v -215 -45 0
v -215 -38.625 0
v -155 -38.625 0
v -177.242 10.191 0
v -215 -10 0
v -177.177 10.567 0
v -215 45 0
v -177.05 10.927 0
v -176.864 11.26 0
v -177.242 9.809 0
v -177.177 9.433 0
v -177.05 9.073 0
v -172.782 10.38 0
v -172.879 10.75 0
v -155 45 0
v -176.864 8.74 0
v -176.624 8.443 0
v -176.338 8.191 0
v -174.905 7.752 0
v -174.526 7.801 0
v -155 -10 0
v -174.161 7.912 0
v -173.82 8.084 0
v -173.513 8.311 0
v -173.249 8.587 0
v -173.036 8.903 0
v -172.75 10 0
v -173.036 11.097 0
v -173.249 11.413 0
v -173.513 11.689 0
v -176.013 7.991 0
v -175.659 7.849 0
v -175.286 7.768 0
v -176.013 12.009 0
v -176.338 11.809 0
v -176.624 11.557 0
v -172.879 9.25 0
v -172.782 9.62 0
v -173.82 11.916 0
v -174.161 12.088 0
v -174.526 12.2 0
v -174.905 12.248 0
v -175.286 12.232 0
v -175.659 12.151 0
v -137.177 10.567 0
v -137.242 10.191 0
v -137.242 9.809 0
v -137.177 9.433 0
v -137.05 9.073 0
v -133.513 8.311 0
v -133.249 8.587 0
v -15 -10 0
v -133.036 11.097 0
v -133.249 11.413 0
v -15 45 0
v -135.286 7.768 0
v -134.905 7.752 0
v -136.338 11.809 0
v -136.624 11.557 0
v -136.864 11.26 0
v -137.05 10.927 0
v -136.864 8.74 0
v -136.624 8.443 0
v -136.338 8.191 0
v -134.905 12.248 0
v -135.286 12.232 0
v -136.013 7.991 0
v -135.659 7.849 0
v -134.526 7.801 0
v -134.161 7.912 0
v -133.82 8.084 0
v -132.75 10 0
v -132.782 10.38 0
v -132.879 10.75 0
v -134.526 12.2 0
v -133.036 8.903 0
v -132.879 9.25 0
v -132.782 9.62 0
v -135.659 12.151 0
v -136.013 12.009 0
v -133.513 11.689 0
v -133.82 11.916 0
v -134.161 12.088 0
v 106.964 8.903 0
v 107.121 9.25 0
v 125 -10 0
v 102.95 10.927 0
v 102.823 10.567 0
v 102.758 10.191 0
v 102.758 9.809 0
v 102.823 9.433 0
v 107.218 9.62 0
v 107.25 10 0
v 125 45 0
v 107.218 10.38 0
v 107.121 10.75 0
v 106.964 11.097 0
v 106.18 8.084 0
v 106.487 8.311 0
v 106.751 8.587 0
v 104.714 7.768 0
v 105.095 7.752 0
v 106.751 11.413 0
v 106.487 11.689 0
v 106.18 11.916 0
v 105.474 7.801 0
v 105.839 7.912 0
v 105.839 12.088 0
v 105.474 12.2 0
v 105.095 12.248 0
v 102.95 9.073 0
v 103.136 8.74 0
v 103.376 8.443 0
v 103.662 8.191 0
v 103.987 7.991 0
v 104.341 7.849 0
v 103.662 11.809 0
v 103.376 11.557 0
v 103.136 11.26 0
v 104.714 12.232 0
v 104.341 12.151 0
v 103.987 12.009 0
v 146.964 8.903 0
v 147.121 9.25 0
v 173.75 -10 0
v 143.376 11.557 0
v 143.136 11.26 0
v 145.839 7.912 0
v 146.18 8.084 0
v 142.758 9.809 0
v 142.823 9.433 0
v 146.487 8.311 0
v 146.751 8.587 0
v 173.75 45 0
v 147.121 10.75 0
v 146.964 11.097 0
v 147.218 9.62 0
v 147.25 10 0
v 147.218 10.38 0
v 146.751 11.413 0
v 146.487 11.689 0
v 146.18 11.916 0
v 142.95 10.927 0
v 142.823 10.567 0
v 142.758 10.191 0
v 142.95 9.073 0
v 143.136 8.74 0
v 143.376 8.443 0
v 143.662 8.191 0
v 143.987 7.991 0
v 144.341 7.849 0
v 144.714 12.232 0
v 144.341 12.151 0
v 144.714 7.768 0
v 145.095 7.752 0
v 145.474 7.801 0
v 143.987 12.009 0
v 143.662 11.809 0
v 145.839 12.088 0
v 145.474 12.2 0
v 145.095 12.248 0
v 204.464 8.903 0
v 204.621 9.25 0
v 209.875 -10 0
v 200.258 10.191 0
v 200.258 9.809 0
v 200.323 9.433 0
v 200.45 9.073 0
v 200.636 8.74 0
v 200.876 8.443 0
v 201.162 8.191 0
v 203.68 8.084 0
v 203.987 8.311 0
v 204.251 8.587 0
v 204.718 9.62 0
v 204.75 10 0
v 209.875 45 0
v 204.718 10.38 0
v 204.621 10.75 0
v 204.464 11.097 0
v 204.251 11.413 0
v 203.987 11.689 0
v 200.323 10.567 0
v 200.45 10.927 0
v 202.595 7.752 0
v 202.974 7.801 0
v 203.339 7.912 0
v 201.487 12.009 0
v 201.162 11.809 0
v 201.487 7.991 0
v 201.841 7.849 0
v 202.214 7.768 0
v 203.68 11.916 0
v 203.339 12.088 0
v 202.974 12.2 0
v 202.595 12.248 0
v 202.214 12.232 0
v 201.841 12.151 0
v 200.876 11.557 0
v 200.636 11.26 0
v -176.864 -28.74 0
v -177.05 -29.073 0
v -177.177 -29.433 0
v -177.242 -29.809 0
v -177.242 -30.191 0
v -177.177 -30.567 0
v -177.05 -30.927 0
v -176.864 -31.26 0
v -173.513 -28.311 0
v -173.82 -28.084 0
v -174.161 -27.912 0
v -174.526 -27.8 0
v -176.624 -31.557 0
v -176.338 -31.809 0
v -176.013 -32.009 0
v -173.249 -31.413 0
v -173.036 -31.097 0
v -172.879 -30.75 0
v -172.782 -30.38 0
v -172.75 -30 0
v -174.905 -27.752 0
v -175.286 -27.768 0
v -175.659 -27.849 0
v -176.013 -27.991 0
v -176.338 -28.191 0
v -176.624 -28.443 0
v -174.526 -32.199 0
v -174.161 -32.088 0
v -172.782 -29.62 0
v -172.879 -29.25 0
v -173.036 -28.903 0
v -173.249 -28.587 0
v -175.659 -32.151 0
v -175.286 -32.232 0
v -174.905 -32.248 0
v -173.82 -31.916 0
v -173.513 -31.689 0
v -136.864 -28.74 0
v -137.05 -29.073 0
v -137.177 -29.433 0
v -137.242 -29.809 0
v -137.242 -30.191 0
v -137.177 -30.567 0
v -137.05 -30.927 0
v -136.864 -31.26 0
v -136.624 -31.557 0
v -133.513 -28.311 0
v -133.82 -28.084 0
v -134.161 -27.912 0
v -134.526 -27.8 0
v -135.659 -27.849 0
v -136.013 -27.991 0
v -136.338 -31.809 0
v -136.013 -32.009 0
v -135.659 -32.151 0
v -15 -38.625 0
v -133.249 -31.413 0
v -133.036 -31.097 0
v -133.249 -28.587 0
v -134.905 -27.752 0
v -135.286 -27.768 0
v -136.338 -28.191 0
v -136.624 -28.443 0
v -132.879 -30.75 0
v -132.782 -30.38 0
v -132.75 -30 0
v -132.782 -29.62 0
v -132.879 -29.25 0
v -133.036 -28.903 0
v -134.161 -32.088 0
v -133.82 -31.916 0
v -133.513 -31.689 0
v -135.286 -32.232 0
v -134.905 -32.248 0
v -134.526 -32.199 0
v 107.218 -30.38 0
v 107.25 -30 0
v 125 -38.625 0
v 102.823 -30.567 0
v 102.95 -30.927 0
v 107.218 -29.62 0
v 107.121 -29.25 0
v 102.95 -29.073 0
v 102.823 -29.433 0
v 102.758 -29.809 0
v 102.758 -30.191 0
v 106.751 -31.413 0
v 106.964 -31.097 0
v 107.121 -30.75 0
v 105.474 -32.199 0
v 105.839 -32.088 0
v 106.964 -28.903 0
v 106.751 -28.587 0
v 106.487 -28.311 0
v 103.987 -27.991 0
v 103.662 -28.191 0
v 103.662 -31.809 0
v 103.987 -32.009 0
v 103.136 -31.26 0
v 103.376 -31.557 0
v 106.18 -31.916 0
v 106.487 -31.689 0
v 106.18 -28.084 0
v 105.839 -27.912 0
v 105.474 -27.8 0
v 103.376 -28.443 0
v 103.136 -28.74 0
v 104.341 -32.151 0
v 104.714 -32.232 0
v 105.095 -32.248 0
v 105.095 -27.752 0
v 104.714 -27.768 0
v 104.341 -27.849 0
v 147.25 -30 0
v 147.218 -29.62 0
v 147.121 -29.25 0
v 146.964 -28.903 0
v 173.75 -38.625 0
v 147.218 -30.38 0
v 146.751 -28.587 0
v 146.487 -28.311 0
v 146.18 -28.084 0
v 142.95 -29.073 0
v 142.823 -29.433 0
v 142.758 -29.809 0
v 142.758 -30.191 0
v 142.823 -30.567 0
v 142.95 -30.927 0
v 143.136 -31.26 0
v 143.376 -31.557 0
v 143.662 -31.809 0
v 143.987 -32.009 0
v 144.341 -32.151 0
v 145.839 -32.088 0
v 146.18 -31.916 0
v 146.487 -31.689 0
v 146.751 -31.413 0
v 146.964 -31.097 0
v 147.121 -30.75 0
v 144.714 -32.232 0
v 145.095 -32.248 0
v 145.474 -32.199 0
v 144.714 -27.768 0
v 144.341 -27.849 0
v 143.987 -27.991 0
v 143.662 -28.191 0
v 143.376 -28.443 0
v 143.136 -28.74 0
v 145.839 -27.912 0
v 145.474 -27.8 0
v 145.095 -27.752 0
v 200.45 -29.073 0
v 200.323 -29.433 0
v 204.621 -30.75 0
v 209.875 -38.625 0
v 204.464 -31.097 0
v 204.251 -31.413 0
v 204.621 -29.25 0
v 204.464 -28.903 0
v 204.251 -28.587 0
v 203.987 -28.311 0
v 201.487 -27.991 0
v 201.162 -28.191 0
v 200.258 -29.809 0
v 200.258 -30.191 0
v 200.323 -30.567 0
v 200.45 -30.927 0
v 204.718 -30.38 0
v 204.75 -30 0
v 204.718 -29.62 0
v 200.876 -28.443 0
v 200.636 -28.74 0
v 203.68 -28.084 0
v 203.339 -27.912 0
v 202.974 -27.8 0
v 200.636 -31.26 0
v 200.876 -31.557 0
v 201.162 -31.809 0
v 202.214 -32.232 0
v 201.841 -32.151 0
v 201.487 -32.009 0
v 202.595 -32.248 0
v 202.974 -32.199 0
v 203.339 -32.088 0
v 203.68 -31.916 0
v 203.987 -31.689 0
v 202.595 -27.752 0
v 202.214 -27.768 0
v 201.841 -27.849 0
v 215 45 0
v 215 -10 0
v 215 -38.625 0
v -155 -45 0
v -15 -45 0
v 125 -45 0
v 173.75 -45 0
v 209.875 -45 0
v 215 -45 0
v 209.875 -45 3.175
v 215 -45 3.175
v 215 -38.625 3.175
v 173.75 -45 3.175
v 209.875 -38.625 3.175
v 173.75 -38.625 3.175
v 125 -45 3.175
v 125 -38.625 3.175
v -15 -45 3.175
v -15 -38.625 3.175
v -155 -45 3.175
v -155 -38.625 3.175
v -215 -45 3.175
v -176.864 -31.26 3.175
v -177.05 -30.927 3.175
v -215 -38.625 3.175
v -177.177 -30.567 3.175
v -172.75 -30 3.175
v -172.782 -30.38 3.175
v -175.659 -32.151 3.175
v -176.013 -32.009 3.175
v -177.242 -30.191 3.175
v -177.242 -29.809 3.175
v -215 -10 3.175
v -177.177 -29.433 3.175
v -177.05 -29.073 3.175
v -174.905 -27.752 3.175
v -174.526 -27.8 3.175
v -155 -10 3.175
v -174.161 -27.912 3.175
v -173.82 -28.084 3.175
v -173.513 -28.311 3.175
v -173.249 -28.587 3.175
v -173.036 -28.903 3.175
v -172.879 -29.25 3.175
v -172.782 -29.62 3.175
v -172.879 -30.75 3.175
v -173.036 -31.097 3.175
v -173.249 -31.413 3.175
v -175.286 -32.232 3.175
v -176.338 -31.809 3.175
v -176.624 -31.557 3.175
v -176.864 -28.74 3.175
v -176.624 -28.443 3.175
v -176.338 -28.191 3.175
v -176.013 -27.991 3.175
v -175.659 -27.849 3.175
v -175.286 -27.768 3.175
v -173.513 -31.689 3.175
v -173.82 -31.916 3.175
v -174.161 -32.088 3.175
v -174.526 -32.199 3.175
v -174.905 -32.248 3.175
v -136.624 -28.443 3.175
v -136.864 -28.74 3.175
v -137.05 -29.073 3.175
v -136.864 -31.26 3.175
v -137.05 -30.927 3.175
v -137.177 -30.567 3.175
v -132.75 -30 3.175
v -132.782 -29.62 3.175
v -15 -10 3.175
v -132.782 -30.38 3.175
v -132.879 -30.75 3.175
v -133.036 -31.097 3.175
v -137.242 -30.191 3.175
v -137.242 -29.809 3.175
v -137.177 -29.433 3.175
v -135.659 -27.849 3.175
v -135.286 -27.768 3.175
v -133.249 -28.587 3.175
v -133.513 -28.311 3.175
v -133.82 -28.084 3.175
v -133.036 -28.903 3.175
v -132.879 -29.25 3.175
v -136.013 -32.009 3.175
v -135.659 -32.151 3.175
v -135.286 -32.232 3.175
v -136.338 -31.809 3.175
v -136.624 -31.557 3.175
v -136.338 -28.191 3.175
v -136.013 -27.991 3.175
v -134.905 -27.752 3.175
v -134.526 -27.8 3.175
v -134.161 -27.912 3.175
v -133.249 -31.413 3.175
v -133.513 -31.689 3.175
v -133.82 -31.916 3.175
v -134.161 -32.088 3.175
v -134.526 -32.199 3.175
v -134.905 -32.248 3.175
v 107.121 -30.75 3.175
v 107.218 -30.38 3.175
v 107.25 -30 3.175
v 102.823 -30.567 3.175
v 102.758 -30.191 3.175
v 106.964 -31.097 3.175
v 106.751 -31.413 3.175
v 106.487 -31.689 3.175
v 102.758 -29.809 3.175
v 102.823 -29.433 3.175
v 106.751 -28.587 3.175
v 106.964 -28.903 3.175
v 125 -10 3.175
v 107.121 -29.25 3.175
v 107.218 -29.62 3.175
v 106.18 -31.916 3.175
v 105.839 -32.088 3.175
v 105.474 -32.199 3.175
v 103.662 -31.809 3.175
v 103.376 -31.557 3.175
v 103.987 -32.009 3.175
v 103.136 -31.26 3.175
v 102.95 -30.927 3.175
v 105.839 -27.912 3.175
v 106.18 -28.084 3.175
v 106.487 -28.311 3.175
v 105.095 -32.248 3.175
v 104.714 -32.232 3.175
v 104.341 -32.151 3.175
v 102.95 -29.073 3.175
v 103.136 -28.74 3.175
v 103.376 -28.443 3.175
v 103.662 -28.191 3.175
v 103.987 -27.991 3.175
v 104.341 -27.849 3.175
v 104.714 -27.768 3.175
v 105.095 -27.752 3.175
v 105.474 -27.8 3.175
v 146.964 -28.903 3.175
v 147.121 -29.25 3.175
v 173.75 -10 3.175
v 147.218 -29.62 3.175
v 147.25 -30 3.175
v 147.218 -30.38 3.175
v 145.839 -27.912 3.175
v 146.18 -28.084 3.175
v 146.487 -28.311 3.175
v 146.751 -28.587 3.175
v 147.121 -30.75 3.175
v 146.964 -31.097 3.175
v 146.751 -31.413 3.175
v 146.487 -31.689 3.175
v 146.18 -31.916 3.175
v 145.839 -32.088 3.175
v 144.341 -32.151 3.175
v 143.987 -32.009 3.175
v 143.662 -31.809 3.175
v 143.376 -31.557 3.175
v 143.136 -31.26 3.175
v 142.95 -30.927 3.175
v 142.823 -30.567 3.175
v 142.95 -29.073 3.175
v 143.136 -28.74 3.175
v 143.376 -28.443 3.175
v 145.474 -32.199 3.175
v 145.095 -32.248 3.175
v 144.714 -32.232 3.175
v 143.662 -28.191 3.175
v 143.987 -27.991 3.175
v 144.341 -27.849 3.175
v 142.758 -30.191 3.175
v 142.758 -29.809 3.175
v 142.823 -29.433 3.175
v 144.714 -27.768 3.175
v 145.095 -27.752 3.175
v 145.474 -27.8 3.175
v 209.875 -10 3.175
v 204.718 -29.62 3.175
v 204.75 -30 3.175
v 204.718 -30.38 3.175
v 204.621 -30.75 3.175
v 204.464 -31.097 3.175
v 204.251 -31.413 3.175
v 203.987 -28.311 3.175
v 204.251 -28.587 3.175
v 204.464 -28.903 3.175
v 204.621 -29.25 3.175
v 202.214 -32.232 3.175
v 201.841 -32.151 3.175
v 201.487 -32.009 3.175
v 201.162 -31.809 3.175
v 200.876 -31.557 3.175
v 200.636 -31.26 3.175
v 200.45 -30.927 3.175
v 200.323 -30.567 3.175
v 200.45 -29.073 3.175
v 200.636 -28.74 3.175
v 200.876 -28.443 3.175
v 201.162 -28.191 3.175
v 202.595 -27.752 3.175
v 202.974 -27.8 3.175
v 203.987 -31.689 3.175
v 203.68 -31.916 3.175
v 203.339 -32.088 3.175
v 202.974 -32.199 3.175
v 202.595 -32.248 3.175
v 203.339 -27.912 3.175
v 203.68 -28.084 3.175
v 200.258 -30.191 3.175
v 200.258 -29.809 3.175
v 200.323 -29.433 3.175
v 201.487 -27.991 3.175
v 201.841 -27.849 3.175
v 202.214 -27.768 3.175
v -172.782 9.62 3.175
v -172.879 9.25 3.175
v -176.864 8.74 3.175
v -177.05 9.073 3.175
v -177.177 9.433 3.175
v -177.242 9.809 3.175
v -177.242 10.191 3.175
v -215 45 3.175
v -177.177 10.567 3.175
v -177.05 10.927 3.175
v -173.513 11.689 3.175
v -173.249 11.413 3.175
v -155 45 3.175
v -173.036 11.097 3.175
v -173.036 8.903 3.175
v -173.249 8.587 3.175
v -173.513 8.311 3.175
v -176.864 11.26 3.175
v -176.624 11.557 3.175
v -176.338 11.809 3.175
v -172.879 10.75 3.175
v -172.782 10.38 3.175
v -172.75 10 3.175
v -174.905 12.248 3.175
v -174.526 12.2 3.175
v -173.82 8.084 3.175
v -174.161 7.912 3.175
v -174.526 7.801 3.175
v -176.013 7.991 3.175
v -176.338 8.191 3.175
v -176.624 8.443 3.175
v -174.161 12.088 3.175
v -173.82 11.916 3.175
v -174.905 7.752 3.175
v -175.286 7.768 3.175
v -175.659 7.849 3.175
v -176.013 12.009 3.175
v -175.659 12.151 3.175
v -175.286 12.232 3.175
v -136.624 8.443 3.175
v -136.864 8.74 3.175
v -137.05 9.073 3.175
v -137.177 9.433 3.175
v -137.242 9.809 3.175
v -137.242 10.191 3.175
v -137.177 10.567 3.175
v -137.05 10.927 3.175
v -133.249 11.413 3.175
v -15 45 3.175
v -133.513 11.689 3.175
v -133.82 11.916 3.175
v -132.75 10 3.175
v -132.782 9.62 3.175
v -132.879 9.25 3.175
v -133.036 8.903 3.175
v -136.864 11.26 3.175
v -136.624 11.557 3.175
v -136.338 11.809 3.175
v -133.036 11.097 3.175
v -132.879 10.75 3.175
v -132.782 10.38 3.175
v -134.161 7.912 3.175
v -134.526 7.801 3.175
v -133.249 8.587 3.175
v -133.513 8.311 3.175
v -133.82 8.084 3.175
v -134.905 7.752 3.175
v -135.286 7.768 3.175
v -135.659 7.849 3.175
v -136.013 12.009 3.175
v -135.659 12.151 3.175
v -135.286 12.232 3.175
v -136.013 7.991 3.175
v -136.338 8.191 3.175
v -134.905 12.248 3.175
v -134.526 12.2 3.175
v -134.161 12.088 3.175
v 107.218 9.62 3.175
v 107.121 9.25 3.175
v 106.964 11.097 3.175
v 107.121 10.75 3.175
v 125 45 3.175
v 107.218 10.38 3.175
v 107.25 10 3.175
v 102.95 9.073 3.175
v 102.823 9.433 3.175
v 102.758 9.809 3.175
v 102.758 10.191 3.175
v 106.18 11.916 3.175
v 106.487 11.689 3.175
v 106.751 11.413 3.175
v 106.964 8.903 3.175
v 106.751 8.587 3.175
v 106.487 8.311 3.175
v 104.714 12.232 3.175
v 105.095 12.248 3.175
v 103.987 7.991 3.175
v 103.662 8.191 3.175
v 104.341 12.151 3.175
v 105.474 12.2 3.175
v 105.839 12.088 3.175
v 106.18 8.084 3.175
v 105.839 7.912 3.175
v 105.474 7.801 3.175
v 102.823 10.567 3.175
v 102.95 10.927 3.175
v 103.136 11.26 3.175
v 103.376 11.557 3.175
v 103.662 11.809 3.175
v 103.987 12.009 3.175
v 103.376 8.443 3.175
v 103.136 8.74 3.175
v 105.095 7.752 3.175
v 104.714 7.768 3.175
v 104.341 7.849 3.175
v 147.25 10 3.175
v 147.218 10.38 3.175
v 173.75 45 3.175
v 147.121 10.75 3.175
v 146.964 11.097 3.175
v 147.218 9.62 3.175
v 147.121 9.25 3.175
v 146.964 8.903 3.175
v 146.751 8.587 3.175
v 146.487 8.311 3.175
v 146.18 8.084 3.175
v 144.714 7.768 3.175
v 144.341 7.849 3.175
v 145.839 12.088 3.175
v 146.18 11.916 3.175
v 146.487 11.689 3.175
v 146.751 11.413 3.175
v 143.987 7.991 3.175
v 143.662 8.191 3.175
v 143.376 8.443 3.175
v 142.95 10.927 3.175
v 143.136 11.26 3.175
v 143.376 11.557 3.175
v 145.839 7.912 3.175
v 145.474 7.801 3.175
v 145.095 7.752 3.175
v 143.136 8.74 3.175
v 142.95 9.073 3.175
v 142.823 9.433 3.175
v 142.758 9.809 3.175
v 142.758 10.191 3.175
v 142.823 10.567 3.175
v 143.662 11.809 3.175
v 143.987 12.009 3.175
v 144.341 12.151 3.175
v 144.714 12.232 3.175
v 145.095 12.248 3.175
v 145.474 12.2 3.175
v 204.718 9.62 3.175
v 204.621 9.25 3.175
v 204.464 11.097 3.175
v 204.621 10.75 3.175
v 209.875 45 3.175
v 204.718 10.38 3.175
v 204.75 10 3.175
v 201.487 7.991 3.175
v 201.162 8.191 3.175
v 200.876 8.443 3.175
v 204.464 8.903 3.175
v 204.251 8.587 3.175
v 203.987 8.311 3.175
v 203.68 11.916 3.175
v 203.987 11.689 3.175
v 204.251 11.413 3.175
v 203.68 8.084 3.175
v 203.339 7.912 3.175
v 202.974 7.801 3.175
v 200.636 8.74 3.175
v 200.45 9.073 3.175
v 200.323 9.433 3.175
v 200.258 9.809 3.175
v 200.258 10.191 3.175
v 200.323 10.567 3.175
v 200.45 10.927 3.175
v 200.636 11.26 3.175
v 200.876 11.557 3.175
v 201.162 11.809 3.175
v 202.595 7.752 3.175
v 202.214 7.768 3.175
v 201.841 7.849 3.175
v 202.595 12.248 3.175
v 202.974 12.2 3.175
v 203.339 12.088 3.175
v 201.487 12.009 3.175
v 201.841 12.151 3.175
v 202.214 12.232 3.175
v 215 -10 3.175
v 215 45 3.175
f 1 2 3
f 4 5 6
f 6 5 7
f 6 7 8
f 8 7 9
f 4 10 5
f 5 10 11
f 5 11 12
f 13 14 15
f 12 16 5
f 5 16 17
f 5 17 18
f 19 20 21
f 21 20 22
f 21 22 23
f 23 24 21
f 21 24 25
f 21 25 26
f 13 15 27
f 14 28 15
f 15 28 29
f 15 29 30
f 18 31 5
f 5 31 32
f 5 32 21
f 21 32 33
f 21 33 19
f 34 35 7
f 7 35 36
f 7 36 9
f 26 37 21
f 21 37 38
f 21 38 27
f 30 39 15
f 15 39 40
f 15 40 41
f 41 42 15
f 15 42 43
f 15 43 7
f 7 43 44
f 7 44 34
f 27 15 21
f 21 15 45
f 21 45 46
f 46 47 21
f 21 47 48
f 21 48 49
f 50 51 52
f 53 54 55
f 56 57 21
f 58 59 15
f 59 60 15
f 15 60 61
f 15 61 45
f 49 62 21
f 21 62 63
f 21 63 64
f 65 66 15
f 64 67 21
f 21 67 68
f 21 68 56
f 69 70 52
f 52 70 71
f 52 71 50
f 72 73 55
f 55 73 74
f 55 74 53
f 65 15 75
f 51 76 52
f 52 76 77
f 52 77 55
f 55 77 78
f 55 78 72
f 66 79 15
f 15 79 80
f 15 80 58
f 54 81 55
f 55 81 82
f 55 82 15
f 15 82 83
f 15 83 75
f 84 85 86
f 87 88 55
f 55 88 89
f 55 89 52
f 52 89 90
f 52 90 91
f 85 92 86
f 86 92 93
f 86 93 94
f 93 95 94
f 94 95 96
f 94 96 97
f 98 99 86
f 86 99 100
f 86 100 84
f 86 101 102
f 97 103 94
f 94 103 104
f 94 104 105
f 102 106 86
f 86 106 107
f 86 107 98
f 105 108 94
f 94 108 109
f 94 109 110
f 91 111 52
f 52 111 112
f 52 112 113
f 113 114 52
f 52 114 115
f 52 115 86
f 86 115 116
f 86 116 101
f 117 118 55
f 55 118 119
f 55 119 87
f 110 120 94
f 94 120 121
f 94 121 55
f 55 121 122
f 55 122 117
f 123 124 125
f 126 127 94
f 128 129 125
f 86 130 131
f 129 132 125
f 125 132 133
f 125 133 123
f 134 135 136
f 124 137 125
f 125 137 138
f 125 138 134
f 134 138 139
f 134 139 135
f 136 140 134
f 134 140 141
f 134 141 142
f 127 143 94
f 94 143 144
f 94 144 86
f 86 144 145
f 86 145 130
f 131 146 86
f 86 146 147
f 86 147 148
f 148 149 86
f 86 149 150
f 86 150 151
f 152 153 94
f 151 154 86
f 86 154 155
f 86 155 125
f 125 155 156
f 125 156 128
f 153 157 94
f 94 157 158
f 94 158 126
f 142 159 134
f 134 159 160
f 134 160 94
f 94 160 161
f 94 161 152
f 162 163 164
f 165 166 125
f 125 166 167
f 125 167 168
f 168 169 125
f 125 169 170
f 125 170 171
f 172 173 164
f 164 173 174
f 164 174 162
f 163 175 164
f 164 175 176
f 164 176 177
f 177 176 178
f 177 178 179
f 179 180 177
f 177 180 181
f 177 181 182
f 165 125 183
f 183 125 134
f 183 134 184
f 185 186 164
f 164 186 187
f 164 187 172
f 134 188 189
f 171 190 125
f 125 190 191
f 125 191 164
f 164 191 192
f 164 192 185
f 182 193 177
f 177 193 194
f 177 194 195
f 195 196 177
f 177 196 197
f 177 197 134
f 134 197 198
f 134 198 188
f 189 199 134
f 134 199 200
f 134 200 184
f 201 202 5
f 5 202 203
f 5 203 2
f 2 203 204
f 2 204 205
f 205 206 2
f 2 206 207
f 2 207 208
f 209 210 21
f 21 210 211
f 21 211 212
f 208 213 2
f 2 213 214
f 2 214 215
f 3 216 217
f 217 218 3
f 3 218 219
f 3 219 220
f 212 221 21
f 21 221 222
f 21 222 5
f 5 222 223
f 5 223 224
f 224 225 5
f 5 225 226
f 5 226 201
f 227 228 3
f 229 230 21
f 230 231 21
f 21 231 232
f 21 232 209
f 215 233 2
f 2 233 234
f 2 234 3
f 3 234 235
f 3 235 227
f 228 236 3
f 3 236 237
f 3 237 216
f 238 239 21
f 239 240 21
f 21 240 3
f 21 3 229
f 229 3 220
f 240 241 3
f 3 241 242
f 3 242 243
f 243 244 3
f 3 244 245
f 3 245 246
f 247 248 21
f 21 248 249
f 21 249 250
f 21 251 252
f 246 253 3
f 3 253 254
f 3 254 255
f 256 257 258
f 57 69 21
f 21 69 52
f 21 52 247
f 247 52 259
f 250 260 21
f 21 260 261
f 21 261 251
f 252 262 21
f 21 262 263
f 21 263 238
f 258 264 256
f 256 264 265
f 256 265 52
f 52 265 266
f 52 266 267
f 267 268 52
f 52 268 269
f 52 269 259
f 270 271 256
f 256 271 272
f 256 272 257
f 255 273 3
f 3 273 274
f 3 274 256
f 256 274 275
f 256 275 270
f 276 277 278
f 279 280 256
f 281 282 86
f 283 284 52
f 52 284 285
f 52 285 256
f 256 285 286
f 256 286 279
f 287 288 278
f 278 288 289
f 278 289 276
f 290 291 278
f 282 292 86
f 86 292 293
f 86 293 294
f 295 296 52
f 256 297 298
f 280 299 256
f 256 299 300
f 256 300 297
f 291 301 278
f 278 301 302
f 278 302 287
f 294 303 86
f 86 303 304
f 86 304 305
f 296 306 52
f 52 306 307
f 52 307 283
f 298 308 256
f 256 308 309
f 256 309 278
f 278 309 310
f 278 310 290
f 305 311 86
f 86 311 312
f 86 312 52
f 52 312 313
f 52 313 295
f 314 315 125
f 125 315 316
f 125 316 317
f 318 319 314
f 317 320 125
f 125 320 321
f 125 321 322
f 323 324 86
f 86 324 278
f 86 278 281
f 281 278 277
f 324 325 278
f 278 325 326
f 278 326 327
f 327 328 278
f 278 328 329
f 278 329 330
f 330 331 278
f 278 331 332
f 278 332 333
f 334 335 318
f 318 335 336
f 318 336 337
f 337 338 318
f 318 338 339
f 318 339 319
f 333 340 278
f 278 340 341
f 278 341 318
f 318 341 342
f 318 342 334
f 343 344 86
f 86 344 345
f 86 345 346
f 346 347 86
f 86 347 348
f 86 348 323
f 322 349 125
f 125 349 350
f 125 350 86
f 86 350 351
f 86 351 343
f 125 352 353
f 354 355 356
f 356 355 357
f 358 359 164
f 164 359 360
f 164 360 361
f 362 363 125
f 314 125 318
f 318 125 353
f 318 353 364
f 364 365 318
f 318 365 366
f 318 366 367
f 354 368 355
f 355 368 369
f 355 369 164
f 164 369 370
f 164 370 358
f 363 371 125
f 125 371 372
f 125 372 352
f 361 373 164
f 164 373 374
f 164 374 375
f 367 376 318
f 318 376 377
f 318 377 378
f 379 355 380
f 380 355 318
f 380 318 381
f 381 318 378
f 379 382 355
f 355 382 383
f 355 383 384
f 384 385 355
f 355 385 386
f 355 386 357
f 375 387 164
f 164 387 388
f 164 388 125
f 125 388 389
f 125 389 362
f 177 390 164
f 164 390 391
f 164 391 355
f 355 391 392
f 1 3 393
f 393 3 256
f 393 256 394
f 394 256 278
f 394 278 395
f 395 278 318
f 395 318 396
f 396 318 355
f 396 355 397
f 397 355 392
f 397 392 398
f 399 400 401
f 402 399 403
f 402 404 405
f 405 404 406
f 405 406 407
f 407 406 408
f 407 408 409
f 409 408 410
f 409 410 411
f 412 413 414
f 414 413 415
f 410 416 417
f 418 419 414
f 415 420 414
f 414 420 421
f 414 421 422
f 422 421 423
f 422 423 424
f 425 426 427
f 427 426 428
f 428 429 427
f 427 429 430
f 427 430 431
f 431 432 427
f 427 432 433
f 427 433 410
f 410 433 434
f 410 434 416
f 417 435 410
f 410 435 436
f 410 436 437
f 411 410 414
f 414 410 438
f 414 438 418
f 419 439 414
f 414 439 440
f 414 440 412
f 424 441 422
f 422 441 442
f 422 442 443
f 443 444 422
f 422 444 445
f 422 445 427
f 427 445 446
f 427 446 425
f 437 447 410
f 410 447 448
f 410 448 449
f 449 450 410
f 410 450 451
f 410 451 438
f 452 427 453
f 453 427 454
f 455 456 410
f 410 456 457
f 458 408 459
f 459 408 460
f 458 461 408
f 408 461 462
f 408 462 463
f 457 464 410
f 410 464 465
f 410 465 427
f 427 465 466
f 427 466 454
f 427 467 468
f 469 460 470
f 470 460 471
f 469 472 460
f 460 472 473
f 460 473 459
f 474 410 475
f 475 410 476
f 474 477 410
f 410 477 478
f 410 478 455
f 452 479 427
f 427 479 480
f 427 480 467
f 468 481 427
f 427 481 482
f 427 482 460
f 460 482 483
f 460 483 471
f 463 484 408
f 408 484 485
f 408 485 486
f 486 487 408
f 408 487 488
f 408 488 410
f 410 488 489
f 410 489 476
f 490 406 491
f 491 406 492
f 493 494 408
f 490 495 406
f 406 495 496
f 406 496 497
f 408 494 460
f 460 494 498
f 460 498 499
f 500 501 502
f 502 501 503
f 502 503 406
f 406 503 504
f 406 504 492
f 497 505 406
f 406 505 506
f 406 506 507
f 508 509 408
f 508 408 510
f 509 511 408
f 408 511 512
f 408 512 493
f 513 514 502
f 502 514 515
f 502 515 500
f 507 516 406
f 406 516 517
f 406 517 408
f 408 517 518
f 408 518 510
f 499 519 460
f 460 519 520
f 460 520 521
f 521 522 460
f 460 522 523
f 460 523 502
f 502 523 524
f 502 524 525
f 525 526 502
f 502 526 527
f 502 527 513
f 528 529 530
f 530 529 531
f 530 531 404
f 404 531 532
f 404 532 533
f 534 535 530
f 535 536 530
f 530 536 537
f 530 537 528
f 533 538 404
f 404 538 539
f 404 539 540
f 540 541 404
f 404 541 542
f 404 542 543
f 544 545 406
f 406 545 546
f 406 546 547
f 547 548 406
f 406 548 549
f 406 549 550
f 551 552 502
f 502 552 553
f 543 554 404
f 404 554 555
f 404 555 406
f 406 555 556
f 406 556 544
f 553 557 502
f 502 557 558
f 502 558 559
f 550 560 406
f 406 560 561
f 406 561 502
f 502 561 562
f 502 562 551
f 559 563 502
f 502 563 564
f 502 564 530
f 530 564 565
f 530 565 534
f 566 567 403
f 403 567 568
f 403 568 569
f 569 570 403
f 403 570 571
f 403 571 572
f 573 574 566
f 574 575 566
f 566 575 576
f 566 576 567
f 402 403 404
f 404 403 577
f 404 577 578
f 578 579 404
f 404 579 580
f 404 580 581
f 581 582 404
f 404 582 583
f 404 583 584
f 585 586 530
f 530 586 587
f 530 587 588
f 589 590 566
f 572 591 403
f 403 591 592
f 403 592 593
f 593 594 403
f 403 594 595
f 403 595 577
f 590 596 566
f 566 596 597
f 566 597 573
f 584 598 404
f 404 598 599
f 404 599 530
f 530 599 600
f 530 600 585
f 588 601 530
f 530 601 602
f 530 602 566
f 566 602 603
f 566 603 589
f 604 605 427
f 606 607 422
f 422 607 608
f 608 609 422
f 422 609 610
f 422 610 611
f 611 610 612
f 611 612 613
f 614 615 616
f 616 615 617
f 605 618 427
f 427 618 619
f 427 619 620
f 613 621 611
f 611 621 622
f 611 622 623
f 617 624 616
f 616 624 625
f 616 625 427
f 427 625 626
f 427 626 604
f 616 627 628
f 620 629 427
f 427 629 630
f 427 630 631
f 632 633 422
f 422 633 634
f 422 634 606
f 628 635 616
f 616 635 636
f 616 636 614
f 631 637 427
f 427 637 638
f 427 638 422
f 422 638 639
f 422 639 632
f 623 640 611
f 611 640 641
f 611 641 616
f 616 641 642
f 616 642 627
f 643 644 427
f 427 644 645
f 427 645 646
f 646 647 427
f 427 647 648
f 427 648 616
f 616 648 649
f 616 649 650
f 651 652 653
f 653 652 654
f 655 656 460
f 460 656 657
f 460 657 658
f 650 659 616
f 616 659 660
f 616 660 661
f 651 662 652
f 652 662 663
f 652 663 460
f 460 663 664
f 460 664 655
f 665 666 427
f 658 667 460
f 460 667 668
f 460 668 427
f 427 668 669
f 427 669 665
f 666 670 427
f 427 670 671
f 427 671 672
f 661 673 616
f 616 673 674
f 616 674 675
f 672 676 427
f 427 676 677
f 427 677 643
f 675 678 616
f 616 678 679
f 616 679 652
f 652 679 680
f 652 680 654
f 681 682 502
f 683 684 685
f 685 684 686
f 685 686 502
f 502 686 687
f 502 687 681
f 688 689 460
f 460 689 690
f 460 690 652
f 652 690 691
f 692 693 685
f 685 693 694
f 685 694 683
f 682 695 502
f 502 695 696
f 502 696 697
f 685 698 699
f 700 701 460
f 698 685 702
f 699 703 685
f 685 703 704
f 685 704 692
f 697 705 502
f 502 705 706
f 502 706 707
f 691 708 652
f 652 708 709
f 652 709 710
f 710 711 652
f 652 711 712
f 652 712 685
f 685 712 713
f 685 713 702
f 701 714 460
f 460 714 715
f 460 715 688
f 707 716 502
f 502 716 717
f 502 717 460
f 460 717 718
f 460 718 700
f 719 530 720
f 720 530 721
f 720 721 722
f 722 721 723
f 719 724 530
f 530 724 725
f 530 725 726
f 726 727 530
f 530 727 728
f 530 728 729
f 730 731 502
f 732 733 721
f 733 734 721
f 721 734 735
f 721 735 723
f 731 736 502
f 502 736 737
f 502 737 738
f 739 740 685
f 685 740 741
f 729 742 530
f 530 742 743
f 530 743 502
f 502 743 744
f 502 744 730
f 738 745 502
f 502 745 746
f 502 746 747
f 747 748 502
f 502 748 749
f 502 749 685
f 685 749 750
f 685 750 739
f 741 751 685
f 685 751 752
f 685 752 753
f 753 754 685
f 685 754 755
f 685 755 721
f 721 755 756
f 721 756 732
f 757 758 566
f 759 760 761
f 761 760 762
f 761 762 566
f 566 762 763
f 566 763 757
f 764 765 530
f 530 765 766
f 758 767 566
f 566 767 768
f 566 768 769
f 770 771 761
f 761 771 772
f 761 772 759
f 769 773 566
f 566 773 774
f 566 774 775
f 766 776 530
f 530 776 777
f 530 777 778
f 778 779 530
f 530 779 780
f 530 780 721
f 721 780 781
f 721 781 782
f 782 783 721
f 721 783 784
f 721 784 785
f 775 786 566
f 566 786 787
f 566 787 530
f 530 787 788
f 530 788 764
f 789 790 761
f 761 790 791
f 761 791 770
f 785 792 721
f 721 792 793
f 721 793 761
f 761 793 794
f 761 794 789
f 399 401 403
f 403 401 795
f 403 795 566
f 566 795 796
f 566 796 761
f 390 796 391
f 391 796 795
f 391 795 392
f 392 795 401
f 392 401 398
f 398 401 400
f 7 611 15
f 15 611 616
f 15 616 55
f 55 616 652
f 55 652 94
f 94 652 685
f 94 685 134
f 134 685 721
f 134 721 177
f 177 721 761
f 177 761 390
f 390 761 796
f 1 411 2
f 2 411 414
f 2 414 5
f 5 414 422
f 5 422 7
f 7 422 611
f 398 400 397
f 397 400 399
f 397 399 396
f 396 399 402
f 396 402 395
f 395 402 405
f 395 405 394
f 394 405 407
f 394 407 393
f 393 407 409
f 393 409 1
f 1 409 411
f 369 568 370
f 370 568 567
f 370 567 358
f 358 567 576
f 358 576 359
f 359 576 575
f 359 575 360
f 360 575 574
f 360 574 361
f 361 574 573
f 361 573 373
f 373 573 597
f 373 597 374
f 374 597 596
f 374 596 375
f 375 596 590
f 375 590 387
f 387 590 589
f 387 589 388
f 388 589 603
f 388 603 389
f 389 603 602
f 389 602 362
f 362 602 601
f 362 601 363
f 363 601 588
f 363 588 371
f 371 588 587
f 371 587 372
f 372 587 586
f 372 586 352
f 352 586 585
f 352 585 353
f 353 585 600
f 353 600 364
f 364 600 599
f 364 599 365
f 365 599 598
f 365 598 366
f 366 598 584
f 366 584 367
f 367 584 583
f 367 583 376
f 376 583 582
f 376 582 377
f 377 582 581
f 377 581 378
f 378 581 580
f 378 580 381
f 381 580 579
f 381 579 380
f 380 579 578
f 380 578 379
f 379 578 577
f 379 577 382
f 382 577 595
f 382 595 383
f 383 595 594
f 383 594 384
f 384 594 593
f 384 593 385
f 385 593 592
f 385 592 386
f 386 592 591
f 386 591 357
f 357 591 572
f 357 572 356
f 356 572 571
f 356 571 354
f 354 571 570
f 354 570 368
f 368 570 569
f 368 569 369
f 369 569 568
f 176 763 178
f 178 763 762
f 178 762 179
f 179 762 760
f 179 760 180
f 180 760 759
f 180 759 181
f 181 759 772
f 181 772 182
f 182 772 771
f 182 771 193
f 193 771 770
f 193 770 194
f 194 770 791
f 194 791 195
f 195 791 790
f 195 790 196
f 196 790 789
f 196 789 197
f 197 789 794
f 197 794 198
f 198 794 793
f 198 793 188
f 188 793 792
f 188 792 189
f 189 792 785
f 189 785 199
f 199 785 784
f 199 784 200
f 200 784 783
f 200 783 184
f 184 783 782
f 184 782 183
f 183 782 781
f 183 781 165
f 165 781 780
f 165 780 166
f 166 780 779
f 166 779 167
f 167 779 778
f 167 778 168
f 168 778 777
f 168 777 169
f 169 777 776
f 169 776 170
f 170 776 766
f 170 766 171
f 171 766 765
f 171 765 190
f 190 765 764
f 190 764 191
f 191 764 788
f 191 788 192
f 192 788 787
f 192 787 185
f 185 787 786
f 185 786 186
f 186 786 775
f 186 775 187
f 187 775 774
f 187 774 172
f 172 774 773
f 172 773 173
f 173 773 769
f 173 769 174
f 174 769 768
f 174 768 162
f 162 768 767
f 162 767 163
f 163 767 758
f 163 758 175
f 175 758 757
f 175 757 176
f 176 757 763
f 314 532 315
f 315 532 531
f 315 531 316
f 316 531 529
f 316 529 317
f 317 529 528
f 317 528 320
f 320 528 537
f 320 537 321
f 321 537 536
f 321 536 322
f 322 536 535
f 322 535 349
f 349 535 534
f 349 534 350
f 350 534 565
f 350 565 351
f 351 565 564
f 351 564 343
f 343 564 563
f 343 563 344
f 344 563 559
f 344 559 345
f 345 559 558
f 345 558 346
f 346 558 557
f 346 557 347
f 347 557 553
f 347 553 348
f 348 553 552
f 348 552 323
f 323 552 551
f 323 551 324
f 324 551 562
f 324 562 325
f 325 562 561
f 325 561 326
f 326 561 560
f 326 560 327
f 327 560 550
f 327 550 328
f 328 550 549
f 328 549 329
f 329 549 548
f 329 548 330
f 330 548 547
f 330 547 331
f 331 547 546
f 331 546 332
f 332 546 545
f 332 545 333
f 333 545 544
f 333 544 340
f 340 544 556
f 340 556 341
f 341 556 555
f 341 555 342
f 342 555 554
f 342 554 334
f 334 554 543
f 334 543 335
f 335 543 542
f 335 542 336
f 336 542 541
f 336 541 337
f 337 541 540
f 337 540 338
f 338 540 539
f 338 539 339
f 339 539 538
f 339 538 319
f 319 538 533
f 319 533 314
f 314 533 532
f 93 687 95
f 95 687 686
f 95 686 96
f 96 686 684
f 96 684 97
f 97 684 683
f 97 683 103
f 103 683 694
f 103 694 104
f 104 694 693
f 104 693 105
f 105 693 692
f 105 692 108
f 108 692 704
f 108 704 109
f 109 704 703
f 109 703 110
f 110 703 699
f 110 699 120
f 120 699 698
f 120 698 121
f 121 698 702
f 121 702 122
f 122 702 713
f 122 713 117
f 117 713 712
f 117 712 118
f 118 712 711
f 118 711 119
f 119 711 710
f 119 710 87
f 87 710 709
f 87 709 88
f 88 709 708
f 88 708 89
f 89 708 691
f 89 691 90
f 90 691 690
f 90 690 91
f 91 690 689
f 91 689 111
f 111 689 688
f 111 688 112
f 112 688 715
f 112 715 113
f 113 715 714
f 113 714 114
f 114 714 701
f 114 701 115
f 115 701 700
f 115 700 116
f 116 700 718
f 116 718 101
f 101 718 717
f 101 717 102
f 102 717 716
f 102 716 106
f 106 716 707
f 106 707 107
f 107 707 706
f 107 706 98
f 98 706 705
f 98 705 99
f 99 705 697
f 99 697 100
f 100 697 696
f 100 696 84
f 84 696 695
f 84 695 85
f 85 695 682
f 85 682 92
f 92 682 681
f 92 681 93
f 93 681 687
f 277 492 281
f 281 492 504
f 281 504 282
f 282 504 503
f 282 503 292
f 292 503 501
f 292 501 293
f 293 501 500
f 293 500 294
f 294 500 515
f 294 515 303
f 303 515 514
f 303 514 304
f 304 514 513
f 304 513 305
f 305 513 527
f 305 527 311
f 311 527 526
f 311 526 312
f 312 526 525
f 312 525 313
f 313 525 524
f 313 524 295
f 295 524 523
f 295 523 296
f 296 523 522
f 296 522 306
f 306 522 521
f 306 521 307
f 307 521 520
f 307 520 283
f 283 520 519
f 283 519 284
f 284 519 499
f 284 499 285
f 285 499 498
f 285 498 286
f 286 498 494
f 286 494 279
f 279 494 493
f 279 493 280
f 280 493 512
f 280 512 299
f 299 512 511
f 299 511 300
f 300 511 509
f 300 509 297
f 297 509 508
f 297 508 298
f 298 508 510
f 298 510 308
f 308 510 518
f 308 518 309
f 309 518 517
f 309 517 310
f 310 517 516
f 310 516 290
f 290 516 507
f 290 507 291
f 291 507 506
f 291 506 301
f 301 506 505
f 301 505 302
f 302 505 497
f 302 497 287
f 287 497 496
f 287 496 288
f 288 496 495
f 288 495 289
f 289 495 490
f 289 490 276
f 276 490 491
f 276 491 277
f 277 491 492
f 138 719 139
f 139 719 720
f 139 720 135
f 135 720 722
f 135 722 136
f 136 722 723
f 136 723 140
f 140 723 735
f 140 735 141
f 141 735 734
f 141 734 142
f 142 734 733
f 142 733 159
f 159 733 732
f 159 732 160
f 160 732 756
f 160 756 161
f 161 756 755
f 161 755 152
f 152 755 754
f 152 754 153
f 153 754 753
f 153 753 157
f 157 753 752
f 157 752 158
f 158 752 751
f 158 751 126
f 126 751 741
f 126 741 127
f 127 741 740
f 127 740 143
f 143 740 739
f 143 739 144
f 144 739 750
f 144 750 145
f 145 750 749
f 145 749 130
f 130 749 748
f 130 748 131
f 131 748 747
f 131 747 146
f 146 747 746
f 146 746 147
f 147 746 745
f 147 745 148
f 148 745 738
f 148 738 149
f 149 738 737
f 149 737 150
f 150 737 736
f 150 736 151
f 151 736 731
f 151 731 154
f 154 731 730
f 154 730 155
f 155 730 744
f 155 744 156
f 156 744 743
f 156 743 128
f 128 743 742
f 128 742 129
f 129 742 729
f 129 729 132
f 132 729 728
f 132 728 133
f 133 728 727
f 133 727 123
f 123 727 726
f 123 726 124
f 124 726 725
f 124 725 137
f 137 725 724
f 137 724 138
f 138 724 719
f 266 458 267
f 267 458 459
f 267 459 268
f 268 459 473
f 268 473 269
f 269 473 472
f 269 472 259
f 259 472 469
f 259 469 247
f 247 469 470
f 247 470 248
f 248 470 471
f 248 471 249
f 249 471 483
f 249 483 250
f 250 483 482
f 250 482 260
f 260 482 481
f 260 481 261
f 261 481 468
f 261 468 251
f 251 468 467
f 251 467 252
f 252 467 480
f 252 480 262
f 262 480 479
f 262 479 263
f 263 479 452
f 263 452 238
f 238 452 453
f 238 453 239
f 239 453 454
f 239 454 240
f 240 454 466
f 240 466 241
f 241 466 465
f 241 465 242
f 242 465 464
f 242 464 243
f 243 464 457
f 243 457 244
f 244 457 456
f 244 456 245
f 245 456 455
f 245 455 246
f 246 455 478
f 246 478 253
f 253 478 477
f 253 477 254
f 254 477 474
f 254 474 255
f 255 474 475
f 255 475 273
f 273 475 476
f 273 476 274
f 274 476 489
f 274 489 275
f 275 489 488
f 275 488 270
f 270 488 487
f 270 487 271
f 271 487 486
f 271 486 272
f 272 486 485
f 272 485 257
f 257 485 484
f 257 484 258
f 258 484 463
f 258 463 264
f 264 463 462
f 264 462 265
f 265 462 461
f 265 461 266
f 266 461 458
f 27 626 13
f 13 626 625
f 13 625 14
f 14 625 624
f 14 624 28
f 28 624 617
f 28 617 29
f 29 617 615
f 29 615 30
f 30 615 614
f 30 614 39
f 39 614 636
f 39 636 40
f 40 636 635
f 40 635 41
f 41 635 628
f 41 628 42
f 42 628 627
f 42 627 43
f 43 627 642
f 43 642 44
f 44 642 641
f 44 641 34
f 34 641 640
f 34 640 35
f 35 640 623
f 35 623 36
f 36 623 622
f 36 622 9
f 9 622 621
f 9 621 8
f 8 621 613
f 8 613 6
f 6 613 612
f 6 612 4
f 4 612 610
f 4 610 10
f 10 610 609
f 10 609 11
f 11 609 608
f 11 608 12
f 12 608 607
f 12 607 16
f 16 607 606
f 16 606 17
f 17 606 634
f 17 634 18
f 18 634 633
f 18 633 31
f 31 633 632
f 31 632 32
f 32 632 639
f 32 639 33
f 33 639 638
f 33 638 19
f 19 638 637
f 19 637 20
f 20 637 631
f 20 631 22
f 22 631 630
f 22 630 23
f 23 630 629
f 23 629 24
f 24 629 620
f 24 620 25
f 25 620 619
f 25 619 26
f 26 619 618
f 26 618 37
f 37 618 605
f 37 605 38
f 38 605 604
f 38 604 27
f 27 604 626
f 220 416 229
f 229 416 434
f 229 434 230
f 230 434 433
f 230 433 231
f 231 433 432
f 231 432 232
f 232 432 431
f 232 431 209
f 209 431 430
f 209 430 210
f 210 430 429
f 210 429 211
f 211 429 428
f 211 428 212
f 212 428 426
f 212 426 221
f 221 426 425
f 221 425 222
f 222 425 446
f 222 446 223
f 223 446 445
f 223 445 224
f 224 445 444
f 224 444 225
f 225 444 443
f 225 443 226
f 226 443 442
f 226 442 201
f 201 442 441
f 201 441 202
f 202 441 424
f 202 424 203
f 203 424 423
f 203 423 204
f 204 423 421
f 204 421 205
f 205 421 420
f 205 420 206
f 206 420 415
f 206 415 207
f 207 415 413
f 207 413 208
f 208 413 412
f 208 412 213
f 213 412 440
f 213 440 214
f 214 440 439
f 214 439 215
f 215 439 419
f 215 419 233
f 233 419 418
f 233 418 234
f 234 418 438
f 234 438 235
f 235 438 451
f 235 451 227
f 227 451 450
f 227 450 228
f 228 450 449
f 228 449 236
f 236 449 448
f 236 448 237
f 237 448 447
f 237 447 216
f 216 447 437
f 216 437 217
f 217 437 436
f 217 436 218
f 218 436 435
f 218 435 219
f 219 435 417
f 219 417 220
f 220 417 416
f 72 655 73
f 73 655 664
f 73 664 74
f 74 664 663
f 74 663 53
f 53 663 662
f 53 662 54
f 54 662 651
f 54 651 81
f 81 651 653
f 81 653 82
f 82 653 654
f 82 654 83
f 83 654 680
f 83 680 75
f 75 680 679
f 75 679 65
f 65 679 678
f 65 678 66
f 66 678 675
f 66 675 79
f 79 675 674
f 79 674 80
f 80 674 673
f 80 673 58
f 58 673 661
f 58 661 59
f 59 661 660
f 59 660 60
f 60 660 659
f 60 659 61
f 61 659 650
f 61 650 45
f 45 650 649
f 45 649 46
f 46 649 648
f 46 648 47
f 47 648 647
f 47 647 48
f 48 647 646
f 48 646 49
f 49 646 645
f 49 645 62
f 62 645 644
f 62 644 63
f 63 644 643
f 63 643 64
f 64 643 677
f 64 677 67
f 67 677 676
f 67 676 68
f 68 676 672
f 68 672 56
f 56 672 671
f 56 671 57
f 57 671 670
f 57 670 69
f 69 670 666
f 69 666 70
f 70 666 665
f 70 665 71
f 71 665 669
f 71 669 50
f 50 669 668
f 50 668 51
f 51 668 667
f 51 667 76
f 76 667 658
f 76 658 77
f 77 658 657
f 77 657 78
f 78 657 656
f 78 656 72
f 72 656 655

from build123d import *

# Parameters (mm, degrees)
SKETCH3_W            = 430
SKETCH3_H            = 90
BOSS_EXTRUDE1_DEPTH  = 3.175
M4_CLEARANCE_HOLE1_D = 4.5


with BuildPart() as part:
    # Sketch3 → Boss-Extrude1 (new body)
    with BuildSketch(Plane.XY):
        Rectangle(SKETCH3_W, SKETCH3_H)
    extrude(amount=BOSS_EXTRUDE1_DEPTH)

    # M4 Clearance Hole1 (through all)
    with Locations(Plane.XY.offset(3.175)):
        with Locations((-135, 10), (-175, -30), (-175, 10), (-135, -30), (145, 10), (105, -30), (105, 10), (145, -30), (202.5, 10), (202.5, -30)):
            Hole(M4_CLEARANCE_HOLE1_D / 2)


solid = part.part
